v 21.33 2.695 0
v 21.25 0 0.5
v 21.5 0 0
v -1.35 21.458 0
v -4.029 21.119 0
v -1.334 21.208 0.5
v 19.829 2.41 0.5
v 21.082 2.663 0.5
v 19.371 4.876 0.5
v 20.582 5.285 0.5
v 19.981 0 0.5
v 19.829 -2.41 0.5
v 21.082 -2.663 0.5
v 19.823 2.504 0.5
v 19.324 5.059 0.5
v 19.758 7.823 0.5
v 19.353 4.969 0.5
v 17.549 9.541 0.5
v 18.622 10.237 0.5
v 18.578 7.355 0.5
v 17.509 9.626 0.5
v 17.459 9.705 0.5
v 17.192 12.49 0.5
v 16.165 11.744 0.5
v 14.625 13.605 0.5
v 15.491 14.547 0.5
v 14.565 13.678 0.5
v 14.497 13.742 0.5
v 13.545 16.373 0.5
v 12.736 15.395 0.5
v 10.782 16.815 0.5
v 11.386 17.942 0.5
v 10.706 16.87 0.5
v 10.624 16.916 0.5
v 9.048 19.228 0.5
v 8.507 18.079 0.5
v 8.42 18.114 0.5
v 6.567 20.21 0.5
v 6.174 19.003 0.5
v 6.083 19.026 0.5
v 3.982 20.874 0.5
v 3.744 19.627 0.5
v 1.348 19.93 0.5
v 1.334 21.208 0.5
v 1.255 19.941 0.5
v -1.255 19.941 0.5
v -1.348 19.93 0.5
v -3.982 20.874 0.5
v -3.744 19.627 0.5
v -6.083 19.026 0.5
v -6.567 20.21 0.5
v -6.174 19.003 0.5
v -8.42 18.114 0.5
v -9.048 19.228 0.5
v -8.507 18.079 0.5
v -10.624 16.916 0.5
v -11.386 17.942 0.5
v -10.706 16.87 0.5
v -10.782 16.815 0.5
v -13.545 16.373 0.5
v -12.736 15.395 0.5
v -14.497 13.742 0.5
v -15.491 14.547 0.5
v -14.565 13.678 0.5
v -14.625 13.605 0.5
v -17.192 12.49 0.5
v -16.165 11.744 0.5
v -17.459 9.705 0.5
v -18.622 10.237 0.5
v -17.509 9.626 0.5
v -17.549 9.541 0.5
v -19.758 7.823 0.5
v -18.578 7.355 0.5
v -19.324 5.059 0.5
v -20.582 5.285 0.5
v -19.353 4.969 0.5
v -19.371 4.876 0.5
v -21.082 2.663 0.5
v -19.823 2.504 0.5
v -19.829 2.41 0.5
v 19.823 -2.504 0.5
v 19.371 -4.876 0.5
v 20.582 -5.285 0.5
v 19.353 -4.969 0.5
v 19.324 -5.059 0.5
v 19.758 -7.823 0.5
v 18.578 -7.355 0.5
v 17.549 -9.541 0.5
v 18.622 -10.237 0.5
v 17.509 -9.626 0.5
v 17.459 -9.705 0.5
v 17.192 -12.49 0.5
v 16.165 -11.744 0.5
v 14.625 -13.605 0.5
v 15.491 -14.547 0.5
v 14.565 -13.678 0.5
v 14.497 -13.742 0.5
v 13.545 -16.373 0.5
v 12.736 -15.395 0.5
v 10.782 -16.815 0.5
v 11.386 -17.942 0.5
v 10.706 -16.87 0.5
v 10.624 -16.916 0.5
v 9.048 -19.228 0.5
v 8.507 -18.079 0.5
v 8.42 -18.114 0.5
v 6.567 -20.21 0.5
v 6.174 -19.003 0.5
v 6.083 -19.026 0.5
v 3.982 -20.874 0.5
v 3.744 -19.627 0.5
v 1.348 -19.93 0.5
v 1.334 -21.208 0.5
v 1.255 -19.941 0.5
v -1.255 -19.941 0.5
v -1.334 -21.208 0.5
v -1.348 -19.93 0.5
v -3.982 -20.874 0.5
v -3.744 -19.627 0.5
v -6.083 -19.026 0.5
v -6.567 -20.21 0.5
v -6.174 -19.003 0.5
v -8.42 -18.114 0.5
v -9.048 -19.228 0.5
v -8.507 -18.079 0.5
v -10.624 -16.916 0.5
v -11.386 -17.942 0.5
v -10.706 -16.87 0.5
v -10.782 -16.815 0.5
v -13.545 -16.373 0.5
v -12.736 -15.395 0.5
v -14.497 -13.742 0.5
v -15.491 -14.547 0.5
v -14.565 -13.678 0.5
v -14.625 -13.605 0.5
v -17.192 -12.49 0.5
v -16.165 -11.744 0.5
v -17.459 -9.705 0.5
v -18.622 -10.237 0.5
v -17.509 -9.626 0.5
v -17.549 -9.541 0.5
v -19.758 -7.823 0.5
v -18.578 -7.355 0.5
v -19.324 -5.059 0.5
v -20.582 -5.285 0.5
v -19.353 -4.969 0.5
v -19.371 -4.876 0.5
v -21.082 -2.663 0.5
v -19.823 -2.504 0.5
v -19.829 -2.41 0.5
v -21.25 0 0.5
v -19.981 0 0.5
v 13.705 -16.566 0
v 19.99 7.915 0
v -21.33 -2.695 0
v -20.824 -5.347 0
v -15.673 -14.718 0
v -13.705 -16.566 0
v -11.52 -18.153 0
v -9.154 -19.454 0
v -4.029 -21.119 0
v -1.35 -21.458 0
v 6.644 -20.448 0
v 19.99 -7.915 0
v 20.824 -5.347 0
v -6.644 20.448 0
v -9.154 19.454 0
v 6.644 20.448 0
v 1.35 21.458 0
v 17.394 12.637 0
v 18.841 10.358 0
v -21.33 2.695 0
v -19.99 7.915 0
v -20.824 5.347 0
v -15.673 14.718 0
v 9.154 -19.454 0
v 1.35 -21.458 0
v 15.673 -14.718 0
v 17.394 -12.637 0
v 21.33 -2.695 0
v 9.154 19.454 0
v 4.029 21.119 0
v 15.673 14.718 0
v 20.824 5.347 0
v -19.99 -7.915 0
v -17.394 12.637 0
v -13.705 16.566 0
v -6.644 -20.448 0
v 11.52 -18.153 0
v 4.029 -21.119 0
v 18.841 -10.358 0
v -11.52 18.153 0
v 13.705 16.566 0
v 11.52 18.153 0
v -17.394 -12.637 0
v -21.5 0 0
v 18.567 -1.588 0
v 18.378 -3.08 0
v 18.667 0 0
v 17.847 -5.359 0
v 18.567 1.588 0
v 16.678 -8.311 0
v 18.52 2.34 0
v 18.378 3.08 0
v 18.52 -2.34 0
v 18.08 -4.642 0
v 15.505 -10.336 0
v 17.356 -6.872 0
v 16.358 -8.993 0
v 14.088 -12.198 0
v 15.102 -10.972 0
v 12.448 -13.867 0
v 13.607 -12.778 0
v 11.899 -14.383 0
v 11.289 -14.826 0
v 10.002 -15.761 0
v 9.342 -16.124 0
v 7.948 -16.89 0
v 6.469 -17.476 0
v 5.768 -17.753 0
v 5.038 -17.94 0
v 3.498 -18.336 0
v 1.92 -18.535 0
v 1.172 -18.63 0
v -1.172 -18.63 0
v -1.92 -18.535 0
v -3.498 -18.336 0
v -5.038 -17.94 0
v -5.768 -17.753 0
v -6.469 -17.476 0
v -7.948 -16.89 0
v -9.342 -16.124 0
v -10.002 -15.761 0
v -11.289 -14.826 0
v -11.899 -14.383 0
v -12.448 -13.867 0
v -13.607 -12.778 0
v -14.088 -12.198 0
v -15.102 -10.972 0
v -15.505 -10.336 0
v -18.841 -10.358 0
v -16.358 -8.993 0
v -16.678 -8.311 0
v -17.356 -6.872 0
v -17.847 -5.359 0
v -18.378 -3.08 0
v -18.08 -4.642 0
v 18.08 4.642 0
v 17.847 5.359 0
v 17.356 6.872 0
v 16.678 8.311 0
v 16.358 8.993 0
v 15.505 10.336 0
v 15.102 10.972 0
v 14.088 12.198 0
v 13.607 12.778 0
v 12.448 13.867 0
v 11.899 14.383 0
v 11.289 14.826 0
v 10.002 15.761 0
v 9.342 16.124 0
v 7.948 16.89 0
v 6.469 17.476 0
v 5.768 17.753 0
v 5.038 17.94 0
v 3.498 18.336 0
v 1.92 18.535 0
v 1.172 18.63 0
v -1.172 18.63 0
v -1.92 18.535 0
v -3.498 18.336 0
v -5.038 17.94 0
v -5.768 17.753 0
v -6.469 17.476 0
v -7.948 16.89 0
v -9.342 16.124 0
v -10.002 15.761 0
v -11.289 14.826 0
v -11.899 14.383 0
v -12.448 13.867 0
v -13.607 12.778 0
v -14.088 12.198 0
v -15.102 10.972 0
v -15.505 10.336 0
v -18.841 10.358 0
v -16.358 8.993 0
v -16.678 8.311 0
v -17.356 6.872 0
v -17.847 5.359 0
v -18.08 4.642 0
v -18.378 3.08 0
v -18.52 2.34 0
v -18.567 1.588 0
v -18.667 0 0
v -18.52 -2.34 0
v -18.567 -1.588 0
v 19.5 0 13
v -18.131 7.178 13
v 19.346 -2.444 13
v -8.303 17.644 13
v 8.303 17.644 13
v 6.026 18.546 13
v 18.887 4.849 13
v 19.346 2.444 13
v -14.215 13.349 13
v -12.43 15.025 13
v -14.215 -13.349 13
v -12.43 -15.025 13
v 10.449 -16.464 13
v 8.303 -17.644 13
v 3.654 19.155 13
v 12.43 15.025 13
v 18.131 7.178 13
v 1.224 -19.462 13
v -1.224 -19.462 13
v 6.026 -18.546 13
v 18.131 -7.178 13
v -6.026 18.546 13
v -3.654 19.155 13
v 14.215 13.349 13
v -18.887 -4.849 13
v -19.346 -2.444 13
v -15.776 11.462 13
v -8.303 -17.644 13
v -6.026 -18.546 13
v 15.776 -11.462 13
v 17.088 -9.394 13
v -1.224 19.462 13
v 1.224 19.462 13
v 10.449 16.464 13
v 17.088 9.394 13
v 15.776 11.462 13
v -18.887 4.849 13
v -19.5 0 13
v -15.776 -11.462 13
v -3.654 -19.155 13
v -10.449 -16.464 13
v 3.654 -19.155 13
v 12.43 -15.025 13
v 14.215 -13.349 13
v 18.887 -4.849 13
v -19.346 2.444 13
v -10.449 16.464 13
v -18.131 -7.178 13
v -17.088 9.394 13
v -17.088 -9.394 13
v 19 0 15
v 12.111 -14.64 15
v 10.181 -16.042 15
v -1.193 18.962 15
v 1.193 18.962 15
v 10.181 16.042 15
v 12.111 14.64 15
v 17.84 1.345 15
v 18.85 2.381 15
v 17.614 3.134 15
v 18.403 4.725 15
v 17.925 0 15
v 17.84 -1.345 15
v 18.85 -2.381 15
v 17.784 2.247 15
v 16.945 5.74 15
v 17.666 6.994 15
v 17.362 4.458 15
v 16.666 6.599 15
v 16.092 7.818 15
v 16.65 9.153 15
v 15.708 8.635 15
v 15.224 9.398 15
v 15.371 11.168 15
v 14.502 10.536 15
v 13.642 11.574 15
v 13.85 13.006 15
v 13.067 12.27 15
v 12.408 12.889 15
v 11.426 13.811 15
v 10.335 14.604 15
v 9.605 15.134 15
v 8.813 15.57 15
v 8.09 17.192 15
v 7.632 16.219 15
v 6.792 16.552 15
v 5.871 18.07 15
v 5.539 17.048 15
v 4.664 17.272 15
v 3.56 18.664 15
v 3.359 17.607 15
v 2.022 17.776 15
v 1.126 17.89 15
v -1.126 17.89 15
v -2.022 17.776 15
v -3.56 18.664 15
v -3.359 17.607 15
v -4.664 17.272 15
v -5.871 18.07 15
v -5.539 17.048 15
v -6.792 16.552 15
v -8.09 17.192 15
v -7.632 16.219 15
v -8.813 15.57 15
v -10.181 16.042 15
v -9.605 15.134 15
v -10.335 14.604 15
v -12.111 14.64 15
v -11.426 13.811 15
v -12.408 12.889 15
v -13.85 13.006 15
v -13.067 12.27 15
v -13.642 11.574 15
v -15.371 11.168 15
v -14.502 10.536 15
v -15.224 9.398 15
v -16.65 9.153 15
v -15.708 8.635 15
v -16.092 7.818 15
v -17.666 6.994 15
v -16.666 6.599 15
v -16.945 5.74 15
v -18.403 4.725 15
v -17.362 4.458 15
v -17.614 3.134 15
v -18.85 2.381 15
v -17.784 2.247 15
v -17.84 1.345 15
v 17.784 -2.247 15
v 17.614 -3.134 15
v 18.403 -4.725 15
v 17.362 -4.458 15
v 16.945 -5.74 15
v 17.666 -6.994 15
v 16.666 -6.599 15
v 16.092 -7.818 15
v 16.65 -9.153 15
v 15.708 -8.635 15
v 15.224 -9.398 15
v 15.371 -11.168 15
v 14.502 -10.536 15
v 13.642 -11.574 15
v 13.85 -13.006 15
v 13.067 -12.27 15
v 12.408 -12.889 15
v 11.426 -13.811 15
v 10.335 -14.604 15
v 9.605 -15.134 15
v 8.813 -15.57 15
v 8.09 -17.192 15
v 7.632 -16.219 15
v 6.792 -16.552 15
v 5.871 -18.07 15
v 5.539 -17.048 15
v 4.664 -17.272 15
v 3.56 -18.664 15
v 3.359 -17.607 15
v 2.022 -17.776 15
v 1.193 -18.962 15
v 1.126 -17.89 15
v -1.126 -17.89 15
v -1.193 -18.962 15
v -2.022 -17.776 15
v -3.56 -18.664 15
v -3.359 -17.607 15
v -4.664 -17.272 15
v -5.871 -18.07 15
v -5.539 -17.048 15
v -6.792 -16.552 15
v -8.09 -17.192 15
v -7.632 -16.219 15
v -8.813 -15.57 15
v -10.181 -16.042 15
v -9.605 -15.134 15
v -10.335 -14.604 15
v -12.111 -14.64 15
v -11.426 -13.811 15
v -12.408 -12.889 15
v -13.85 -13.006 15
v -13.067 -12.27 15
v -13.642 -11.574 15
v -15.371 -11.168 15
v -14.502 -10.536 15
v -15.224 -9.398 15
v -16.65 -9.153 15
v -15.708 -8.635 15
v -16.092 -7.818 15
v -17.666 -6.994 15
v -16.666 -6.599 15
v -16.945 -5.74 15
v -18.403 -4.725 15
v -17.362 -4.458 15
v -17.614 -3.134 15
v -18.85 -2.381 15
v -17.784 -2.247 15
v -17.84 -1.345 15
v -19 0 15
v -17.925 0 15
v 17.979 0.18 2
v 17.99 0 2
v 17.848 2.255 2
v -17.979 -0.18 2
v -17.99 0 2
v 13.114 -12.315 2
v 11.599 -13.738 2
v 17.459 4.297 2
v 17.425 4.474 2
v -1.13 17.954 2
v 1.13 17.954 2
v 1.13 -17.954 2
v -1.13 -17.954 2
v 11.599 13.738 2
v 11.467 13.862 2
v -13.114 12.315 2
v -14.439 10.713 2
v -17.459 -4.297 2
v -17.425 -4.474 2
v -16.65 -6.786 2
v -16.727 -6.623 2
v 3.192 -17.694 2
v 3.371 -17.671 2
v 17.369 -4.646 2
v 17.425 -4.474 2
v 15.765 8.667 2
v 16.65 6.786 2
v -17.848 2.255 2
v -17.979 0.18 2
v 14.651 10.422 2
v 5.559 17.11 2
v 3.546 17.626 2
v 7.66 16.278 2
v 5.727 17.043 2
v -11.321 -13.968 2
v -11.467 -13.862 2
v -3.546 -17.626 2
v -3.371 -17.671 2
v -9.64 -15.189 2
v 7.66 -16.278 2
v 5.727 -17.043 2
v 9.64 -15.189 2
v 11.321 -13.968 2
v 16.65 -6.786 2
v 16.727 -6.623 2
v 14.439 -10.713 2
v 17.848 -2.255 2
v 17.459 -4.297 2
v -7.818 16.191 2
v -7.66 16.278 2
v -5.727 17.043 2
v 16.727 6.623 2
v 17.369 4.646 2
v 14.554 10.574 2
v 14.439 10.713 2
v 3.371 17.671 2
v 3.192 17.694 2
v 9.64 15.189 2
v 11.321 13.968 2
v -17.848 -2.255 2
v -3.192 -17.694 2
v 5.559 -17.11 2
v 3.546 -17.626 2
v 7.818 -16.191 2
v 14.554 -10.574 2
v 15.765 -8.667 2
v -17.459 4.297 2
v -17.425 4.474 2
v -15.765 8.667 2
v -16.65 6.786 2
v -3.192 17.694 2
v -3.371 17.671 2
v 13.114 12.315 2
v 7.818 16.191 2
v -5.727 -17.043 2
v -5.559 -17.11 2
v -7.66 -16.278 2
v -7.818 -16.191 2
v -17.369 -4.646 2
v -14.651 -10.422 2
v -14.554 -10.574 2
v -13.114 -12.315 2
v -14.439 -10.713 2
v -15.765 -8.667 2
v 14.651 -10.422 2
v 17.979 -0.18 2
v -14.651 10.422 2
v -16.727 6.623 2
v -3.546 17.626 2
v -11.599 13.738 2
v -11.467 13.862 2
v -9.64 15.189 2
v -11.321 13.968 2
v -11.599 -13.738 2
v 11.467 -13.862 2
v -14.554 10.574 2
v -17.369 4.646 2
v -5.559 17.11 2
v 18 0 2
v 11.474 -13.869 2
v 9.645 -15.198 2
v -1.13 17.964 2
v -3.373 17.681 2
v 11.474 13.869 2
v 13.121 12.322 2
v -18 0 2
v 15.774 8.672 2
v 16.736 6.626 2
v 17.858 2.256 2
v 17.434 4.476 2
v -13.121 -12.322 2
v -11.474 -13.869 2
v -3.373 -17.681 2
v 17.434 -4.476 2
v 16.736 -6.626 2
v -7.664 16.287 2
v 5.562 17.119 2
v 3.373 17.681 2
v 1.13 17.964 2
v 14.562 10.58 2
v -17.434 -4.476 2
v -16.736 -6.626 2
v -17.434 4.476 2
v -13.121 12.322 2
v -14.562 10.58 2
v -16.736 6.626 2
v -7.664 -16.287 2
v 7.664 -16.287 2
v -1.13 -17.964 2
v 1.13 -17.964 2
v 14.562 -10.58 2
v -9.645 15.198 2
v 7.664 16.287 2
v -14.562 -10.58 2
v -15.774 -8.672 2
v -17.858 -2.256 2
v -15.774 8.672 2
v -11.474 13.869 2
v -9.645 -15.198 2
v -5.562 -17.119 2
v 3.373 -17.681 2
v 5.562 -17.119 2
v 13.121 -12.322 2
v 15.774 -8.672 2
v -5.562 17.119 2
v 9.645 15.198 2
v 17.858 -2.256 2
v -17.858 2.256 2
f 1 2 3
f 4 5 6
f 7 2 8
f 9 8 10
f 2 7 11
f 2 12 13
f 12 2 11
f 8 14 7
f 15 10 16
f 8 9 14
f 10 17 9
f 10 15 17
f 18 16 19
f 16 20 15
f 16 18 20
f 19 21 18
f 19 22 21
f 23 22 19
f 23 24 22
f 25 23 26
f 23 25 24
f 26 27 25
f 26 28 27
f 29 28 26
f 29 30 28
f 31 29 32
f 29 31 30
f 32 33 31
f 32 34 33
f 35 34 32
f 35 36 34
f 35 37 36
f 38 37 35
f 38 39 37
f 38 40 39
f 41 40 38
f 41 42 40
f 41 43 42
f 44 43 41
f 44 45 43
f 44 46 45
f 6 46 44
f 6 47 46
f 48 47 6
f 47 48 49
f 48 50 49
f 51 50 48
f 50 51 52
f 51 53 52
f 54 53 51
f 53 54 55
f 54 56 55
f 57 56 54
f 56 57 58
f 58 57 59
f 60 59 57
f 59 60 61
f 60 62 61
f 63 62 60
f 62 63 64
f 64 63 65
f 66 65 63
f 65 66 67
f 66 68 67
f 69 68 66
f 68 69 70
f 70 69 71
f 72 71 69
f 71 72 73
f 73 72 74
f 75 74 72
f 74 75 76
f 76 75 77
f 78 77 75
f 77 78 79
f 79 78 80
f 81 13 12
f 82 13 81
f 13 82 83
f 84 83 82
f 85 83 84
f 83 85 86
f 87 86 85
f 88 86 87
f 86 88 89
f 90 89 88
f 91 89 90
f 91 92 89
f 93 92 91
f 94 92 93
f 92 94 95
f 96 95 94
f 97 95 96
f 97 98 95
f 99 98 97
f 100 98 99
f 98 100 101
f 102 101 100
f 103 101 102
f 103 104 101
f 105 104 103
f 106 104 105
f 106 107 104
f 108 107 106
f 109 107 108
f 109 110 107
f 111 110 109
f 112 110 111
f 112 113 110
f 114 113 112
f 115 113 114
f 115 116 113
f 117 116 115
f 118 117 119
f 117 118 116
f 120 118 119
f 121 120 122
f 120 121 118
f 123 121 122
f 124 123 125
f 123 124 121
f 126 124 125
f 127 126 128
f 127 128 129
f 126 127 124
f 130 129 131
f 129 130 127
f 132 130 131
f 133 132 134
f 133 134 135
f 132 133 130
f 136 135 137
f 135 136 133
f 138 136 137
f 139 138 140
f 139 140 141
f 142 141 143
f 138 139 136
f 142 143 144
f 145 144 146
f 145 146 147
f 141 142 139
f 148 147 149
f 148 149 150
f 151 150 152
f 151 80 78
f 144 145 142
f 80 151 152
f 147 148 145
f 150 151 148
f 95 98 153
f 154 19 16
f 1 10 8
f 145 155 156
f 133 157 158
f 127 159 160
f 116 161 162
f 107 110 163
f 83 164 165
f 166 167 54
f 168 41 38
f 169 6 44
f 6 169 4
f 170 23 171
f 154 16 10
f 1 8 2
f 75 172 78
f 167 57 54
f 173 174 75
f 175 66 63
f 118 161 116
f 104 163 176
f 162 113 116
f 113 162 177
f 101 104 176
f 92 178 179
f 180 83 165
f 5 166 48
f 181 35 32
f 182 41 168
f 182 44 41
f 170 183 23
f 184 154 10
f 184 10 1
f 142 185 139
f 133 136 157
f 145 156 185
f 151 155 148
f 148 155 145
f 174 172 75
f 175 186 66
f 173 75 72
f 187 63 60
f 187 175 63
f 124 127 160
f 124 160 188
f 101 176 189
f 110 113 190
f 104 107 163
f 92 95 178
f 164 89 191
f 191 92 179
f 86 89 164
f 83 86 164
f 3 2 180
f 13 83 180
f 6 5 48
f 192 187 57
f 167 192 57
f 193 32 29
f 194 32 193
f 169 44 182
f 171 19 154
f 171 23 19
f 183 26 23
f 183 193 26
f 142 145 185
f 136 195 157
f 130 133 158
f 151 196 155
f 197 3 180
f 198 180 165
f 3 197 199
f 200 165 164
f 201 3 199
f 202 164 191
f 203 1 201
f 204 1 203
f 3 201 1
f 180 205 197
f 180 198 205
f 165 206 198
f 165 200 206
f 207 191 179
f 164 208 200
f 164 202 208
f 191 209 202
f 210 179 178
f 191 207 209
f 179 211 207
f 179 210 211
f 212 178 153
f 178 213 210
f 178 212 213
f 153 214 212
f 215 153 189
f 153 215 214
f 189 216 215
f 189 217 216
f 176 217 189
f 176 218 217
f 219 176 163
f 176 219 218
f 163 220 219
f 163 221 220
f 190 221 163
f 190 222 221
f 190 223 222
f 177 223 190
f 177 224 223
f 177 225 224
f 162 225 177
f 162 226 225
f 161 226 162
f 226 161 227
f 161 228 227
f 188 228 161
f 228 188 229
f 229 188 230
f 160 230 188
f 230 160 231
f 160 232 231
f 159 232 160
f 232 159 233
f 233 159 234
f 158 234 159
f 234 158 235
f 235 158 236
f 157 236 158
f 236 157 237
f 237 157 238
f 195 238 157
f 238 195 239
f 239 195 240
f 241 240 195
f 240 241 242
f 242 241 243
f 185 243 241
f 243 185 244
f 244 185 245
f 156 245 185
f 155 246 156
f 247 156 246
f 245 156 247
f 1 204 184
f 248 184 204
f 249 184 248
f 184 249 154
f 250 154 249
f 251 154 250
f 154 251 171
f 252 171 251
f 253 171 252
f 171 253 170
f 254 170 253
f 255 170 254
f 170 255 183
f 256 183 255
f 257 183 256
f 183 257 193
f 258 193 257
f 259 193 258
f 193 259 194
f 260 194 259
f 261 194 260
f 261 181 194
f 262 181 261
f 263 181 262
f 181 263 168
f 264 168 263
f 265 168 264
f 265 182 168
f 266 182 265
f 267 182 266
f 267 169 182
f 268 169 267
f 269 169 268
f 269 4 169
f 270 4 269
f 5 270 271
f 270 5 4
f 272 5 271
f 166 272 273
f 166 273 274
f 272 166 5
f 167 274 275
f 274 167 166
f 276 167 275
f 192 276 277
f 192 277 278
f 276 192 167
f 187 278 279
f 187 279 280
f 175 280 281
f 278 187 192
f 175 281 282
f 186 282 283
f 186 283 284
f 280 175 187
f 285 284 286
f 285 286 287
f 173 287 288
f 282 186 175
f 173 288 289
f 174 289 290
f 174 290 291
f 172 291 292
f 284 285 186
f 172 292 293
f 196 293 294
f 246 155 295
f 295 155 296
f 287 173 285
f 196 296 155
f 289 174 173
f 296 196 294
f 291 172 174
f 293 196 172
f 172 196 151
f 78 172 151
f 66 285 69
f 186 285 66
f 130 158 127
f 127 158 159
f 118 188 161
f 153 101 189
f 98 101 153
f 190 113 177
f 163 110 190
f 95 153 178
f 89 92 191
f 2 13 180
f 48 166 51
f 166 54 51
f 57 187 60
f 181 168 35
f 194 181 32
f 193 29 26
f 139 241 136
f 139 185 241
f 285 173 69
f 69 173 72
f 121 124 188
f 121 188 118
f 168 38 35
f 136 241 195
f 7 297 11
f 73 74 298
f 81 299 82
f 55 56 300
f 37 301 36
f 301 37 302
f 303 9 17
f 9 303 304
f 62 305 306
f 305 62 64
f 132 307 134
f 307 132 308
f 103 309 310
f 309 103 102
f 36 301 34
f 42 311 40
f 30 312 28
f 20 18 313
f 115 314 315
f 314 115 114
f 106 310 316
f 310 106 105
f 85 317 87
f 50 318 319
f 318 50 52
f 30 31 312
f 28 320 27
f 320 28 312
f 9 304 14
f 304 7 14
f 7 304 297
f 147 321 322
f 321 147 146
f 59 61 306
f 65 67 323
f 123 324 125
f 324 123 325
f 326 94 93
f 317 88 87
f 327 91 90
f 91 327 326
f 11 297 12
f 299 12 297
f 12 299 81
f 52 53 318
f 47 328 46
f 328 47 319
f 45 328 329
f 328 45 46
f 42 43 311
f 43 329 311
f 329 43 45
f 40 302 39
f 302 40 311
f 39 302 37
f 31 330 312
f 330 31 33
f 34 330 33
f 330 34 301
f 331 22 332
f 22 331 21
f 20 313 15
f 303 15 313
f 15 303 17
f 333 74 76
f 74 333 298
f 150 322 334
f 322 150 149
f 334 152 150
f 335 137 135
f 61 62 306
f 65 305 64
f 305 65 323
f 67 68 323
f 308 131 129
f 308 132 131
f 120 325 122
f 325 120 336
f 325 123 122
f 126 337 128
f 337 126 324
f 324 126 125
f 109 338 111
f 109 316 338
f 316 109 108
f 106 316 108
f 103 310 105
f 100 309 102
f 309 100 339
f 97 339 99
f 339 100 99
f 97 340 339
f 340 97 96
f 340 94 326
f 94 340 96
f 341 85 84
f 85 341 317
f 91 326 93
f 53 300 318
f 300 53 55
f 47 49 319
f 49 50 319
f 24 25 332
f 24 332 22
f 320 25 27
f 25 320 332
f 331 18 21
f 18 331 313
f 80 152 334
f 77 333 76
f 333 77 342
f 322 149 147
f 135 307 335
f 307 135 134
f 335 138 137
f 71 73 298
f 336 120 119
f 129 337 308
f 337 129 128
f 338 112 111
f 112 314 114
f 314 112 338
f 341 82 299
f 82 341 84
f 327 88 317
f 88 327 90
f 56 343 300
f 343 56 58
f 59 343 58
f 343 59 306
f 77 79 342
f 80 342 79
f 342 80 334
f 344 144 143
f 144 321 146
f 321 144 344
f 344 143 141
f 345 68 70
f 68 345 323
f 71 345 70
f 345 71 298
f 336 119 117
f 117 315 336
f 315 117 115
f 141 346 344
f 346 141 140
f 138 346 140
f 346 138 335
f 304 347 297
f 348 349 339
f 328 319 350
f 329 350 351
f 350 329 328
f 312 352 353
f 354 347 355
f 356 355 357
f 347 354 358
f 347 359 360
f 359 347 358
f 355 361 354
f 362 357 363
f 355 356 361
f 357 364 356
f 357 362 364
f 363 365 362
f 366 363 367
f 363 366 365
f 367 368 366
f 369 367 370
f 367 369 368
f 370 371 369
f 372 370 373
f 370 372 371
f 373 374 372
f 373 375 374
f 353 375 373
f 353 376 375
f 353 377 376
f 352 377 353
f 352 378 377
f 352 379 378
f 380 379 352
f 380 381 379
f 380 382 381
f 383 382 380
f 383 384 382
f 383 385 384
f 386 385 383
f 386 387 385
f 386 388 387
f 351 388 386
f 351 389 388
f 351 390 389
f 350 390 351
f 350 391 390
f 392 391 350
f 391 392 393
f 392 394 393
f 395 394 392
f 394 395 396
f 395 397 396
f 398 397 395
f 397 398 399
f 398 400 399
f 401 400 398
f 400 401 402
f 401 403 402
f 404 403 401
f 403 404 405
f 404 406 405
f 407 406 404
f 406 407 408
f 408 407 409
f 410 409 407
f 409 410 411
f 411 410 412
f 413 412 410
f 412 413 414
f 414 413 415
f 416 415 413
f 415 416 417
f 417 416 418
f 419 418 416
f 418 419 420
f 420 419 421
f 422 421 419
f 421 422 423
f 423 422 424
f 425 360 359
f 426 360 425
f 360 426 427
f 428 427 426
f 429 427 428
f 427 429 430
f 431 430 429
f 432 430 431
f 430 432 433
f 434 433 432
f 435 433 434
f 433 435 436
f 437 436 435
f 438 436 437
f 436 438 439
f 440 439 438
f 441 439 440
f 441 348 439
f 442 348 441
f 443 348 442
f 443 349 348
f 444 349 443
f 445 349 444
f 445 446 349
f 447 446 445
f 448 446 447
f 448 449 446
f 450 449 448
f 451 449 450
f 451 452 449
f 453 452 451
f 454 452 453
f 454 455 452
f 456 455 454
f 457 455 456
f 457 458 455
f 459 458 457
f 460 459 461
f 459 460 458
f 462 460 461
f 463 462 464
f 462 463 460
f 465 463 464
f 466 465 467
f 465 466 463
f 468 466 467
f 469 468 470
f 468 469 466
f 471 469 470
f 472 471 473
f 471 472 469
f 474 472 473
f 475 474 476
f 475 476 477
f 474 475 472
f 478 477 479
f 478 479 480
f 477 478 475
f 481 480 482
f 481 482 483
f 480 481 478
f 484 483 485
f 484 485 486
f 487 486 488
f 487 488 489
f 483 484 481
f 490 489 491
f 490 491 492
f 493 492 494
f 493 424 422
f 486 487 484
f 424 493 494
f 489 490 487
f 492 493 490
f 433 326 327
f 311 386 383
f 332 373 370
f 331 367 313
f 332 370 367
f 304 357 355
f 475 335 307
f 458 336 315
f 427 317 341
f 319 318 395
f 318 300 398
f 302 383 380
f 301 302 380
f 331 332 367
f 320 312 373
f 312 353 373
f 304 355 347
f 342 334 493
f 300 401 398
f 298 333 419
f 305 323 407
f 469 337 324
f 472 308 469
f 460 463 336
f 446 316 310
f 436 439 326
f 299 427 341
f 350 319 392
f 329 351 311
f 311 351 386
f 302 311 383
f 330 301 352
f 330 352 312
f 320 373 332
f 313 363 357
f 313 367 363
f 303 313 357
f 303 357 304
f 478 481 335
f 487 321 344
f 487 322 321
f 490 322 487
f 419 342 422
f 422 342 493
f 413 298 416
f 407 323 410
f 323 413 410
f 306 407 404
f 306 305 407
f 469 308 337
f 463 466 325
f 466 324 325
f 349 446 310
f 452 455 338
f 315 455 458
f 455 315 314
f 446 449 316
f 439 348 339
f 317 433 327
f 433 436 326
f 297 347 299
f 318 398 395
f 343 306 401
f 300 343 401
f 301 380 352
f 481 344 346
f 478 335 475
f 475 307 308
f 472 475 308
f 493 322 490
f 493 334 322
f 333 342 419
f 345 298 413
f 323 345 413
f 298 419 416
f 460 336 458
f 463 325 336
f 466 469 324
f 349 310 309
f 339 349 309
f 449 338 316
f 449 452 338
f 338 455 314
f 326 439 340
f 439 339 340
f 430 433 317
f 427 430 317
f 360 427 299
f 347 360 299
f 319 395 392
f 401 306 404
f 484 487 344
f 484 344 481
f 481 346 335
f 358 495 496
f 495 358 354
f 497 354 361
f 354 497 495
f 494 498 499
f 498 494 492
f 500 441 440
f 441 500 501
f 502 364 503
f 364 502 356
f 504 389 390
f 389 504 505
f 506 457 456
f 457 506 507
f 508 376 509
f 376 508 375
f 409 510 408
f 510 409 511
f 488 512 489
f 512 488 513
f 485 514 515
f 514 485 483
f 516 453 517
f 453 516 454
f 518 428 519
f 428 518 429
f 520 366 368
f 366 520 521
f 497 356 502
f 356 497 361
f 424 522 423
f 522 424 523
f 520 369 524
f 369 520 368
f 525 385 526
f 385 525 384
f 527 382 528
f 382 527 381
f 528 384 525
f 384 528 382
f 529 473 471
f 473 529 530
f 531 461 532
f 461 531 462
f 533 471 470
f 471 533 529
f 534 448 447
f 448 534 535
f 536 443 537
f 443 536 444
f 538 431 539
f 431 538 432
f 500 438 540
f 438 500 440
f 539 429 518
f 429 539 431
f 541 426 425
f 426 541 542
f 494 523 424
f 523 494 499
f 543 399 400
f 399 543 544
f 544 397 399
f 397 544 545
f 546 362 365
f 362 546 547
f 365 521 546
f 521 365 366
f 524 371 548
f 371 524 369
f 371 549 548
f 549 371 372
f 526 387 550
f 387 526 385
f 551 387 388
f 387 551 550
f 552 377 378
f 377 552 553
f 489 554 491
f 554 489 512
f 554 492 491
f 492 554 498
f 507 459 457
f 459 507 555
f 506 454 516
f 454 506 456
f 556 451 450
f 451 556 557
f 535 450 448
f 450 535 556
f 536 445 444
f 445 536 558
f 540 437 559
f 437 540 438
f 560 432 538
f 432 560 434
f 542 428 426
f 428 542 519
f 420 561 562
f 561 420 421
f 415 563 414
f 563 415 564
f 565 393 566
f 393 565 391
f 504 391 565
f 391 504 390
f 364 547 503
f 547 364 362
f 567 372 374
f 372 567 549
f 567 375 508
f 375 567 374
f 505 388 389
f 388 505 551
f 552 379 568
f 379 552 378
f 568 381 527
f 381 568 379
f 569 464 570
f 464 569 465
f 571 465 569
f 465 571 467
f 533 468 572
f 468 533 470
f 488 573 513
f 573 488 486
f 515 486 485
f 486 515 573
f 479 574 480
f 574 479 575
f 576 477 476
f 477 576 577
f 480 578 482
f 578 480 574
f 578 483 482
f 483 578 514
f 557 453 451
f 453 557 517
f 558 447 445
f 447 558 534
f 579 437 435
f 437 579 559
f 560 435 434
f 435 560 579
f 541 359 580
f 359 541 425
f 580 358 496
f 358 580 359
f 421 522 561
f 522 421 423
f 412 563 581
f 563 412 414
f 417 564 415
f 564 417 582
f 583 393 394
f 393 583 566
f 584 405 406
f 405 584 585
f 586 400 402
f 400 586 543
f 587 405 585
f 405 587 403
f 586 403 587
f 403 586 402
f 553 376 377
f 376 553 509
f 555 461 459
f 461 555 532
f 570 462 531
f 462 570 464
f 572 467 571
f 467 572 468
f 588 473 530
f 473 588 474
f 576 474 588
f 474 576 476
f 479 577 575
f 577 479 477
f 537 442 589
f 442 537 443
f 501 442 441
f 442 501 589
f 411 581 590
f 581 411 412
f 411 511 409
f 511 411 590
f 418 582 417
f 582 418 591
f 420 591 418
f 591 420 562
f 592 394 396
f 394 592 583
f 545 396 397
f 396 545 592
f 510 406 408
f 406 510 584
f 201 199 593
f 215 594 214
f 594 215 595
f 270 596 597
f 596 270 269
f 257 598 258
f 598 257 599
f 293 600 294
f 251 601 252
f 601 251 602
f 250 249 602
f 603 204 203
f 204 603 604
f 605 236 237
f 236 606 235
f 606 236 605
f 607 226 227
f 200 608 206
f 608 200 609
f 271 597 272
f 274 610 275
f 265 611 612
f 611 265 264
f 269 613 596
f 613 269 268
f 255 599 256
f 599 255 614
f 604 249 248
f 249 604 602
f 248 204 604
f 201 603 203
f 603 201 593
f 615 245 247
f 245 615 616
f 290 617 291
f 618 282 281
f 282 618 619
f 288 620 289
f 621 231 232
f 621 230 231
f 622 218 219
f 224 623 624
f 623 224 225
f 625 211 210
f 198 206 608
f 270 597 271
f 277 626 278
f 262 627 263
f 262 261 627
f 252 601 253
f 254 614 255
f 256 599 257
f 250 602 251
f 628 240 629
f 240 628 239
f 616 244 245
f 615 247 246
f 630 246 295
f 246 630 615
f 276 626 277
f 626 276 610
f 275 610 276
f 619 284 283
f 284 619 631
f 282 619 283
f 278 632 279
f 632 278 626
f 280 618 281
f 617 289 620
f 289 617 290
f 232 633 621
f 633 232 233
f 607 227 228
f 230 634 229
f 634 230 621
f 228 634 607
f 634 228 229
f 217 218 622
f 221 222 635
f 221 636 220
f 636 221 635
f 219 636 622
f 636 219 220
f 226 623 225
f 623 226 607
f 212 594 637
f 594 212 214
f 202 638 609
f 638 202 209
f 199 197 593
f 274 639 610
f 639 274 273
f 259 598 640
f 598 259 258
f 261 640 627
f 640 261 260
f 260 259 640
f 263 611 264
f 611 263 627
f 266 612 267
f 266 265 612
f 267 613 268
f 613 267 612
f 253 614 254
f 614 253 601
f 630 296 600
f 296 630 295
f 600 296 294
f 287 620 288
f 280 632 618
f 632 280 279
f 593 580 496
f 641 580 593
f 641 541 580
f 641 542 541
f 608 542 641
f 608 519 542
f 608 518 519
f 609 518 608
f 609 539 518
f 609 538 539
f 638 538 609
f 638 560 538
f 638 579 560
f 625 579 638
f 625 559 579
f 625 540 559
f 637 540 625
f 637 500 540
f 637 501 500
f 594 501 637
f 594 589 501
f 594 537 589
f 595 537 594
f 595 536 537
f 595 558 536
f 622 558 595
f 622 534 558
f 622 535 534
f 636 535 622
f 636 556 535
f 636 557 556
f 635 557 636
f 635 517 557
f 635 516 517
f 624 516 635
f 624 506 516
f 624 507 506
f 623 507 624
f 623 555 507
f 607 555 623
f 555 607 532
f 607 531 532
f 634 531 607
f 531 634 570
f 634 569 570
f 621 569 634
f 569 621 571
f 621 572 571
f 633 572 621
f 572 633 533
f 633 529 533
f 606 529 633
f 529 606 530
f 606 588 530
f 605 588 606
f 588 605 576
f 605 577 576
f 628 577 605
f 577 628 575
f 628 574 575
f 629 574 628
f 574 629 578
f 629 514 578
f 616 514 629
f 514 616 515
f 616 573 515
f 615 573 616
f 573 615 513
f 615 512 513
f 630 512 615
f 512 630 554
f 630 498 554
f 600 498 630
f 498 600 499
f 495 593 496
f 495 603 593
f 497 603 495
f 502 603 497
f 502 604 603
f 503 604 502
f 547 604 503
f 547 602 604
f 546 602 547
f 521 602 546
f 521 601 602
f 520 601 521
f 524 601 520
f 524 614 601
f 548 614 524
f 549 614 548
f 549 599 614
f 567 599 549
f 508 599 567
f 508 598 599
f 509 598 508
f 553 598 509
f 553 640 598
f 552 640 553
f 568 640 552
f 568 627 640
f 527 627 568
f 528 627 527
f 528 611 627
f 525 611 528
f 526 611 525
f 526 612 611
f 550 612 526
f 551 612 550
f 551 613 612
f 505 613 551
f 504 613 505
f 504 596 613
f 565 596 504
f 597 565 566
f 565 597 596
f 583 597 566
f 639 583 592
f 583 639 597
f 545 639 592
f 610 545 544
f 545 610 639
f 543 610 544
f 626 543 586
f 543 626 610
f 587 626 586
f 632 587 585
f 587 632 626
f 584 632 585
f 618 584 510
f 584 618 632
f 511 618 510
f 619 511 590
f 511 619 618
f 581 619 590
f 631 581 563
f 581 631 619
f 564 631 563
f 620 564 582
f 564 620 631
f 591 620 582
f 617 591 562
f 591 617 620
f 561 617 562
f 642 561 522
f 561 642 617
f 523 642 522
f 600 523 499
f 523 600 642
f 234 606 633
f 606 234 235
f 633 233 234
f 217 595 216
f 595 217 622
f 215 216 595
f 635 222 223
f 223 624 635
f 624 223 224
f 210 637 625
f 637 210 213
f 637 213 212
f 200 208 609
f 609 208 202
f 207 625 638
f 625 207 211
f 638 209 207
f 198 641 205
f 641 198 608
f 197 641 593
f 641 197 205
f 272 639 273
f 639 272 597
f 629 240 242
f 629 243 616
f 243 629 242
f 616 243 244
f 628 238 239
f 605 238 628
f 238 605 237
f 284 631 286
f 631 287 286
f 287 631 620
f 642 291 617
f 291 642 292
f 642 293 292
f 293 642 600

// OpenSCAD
$fn=50;

difference (){
    start();
    translate([0,0,-.01])
    cylinder (25,18,17.875);
    translate([0,0,-1])
    cylinder (3,19,18
    );
    
    
}
module start(){
    cylinder (.5,21.5,21.25);
     cylinder (13,20,19.5);
    translate([0,0,13])
    cylinder (2,19.5,19);
};
